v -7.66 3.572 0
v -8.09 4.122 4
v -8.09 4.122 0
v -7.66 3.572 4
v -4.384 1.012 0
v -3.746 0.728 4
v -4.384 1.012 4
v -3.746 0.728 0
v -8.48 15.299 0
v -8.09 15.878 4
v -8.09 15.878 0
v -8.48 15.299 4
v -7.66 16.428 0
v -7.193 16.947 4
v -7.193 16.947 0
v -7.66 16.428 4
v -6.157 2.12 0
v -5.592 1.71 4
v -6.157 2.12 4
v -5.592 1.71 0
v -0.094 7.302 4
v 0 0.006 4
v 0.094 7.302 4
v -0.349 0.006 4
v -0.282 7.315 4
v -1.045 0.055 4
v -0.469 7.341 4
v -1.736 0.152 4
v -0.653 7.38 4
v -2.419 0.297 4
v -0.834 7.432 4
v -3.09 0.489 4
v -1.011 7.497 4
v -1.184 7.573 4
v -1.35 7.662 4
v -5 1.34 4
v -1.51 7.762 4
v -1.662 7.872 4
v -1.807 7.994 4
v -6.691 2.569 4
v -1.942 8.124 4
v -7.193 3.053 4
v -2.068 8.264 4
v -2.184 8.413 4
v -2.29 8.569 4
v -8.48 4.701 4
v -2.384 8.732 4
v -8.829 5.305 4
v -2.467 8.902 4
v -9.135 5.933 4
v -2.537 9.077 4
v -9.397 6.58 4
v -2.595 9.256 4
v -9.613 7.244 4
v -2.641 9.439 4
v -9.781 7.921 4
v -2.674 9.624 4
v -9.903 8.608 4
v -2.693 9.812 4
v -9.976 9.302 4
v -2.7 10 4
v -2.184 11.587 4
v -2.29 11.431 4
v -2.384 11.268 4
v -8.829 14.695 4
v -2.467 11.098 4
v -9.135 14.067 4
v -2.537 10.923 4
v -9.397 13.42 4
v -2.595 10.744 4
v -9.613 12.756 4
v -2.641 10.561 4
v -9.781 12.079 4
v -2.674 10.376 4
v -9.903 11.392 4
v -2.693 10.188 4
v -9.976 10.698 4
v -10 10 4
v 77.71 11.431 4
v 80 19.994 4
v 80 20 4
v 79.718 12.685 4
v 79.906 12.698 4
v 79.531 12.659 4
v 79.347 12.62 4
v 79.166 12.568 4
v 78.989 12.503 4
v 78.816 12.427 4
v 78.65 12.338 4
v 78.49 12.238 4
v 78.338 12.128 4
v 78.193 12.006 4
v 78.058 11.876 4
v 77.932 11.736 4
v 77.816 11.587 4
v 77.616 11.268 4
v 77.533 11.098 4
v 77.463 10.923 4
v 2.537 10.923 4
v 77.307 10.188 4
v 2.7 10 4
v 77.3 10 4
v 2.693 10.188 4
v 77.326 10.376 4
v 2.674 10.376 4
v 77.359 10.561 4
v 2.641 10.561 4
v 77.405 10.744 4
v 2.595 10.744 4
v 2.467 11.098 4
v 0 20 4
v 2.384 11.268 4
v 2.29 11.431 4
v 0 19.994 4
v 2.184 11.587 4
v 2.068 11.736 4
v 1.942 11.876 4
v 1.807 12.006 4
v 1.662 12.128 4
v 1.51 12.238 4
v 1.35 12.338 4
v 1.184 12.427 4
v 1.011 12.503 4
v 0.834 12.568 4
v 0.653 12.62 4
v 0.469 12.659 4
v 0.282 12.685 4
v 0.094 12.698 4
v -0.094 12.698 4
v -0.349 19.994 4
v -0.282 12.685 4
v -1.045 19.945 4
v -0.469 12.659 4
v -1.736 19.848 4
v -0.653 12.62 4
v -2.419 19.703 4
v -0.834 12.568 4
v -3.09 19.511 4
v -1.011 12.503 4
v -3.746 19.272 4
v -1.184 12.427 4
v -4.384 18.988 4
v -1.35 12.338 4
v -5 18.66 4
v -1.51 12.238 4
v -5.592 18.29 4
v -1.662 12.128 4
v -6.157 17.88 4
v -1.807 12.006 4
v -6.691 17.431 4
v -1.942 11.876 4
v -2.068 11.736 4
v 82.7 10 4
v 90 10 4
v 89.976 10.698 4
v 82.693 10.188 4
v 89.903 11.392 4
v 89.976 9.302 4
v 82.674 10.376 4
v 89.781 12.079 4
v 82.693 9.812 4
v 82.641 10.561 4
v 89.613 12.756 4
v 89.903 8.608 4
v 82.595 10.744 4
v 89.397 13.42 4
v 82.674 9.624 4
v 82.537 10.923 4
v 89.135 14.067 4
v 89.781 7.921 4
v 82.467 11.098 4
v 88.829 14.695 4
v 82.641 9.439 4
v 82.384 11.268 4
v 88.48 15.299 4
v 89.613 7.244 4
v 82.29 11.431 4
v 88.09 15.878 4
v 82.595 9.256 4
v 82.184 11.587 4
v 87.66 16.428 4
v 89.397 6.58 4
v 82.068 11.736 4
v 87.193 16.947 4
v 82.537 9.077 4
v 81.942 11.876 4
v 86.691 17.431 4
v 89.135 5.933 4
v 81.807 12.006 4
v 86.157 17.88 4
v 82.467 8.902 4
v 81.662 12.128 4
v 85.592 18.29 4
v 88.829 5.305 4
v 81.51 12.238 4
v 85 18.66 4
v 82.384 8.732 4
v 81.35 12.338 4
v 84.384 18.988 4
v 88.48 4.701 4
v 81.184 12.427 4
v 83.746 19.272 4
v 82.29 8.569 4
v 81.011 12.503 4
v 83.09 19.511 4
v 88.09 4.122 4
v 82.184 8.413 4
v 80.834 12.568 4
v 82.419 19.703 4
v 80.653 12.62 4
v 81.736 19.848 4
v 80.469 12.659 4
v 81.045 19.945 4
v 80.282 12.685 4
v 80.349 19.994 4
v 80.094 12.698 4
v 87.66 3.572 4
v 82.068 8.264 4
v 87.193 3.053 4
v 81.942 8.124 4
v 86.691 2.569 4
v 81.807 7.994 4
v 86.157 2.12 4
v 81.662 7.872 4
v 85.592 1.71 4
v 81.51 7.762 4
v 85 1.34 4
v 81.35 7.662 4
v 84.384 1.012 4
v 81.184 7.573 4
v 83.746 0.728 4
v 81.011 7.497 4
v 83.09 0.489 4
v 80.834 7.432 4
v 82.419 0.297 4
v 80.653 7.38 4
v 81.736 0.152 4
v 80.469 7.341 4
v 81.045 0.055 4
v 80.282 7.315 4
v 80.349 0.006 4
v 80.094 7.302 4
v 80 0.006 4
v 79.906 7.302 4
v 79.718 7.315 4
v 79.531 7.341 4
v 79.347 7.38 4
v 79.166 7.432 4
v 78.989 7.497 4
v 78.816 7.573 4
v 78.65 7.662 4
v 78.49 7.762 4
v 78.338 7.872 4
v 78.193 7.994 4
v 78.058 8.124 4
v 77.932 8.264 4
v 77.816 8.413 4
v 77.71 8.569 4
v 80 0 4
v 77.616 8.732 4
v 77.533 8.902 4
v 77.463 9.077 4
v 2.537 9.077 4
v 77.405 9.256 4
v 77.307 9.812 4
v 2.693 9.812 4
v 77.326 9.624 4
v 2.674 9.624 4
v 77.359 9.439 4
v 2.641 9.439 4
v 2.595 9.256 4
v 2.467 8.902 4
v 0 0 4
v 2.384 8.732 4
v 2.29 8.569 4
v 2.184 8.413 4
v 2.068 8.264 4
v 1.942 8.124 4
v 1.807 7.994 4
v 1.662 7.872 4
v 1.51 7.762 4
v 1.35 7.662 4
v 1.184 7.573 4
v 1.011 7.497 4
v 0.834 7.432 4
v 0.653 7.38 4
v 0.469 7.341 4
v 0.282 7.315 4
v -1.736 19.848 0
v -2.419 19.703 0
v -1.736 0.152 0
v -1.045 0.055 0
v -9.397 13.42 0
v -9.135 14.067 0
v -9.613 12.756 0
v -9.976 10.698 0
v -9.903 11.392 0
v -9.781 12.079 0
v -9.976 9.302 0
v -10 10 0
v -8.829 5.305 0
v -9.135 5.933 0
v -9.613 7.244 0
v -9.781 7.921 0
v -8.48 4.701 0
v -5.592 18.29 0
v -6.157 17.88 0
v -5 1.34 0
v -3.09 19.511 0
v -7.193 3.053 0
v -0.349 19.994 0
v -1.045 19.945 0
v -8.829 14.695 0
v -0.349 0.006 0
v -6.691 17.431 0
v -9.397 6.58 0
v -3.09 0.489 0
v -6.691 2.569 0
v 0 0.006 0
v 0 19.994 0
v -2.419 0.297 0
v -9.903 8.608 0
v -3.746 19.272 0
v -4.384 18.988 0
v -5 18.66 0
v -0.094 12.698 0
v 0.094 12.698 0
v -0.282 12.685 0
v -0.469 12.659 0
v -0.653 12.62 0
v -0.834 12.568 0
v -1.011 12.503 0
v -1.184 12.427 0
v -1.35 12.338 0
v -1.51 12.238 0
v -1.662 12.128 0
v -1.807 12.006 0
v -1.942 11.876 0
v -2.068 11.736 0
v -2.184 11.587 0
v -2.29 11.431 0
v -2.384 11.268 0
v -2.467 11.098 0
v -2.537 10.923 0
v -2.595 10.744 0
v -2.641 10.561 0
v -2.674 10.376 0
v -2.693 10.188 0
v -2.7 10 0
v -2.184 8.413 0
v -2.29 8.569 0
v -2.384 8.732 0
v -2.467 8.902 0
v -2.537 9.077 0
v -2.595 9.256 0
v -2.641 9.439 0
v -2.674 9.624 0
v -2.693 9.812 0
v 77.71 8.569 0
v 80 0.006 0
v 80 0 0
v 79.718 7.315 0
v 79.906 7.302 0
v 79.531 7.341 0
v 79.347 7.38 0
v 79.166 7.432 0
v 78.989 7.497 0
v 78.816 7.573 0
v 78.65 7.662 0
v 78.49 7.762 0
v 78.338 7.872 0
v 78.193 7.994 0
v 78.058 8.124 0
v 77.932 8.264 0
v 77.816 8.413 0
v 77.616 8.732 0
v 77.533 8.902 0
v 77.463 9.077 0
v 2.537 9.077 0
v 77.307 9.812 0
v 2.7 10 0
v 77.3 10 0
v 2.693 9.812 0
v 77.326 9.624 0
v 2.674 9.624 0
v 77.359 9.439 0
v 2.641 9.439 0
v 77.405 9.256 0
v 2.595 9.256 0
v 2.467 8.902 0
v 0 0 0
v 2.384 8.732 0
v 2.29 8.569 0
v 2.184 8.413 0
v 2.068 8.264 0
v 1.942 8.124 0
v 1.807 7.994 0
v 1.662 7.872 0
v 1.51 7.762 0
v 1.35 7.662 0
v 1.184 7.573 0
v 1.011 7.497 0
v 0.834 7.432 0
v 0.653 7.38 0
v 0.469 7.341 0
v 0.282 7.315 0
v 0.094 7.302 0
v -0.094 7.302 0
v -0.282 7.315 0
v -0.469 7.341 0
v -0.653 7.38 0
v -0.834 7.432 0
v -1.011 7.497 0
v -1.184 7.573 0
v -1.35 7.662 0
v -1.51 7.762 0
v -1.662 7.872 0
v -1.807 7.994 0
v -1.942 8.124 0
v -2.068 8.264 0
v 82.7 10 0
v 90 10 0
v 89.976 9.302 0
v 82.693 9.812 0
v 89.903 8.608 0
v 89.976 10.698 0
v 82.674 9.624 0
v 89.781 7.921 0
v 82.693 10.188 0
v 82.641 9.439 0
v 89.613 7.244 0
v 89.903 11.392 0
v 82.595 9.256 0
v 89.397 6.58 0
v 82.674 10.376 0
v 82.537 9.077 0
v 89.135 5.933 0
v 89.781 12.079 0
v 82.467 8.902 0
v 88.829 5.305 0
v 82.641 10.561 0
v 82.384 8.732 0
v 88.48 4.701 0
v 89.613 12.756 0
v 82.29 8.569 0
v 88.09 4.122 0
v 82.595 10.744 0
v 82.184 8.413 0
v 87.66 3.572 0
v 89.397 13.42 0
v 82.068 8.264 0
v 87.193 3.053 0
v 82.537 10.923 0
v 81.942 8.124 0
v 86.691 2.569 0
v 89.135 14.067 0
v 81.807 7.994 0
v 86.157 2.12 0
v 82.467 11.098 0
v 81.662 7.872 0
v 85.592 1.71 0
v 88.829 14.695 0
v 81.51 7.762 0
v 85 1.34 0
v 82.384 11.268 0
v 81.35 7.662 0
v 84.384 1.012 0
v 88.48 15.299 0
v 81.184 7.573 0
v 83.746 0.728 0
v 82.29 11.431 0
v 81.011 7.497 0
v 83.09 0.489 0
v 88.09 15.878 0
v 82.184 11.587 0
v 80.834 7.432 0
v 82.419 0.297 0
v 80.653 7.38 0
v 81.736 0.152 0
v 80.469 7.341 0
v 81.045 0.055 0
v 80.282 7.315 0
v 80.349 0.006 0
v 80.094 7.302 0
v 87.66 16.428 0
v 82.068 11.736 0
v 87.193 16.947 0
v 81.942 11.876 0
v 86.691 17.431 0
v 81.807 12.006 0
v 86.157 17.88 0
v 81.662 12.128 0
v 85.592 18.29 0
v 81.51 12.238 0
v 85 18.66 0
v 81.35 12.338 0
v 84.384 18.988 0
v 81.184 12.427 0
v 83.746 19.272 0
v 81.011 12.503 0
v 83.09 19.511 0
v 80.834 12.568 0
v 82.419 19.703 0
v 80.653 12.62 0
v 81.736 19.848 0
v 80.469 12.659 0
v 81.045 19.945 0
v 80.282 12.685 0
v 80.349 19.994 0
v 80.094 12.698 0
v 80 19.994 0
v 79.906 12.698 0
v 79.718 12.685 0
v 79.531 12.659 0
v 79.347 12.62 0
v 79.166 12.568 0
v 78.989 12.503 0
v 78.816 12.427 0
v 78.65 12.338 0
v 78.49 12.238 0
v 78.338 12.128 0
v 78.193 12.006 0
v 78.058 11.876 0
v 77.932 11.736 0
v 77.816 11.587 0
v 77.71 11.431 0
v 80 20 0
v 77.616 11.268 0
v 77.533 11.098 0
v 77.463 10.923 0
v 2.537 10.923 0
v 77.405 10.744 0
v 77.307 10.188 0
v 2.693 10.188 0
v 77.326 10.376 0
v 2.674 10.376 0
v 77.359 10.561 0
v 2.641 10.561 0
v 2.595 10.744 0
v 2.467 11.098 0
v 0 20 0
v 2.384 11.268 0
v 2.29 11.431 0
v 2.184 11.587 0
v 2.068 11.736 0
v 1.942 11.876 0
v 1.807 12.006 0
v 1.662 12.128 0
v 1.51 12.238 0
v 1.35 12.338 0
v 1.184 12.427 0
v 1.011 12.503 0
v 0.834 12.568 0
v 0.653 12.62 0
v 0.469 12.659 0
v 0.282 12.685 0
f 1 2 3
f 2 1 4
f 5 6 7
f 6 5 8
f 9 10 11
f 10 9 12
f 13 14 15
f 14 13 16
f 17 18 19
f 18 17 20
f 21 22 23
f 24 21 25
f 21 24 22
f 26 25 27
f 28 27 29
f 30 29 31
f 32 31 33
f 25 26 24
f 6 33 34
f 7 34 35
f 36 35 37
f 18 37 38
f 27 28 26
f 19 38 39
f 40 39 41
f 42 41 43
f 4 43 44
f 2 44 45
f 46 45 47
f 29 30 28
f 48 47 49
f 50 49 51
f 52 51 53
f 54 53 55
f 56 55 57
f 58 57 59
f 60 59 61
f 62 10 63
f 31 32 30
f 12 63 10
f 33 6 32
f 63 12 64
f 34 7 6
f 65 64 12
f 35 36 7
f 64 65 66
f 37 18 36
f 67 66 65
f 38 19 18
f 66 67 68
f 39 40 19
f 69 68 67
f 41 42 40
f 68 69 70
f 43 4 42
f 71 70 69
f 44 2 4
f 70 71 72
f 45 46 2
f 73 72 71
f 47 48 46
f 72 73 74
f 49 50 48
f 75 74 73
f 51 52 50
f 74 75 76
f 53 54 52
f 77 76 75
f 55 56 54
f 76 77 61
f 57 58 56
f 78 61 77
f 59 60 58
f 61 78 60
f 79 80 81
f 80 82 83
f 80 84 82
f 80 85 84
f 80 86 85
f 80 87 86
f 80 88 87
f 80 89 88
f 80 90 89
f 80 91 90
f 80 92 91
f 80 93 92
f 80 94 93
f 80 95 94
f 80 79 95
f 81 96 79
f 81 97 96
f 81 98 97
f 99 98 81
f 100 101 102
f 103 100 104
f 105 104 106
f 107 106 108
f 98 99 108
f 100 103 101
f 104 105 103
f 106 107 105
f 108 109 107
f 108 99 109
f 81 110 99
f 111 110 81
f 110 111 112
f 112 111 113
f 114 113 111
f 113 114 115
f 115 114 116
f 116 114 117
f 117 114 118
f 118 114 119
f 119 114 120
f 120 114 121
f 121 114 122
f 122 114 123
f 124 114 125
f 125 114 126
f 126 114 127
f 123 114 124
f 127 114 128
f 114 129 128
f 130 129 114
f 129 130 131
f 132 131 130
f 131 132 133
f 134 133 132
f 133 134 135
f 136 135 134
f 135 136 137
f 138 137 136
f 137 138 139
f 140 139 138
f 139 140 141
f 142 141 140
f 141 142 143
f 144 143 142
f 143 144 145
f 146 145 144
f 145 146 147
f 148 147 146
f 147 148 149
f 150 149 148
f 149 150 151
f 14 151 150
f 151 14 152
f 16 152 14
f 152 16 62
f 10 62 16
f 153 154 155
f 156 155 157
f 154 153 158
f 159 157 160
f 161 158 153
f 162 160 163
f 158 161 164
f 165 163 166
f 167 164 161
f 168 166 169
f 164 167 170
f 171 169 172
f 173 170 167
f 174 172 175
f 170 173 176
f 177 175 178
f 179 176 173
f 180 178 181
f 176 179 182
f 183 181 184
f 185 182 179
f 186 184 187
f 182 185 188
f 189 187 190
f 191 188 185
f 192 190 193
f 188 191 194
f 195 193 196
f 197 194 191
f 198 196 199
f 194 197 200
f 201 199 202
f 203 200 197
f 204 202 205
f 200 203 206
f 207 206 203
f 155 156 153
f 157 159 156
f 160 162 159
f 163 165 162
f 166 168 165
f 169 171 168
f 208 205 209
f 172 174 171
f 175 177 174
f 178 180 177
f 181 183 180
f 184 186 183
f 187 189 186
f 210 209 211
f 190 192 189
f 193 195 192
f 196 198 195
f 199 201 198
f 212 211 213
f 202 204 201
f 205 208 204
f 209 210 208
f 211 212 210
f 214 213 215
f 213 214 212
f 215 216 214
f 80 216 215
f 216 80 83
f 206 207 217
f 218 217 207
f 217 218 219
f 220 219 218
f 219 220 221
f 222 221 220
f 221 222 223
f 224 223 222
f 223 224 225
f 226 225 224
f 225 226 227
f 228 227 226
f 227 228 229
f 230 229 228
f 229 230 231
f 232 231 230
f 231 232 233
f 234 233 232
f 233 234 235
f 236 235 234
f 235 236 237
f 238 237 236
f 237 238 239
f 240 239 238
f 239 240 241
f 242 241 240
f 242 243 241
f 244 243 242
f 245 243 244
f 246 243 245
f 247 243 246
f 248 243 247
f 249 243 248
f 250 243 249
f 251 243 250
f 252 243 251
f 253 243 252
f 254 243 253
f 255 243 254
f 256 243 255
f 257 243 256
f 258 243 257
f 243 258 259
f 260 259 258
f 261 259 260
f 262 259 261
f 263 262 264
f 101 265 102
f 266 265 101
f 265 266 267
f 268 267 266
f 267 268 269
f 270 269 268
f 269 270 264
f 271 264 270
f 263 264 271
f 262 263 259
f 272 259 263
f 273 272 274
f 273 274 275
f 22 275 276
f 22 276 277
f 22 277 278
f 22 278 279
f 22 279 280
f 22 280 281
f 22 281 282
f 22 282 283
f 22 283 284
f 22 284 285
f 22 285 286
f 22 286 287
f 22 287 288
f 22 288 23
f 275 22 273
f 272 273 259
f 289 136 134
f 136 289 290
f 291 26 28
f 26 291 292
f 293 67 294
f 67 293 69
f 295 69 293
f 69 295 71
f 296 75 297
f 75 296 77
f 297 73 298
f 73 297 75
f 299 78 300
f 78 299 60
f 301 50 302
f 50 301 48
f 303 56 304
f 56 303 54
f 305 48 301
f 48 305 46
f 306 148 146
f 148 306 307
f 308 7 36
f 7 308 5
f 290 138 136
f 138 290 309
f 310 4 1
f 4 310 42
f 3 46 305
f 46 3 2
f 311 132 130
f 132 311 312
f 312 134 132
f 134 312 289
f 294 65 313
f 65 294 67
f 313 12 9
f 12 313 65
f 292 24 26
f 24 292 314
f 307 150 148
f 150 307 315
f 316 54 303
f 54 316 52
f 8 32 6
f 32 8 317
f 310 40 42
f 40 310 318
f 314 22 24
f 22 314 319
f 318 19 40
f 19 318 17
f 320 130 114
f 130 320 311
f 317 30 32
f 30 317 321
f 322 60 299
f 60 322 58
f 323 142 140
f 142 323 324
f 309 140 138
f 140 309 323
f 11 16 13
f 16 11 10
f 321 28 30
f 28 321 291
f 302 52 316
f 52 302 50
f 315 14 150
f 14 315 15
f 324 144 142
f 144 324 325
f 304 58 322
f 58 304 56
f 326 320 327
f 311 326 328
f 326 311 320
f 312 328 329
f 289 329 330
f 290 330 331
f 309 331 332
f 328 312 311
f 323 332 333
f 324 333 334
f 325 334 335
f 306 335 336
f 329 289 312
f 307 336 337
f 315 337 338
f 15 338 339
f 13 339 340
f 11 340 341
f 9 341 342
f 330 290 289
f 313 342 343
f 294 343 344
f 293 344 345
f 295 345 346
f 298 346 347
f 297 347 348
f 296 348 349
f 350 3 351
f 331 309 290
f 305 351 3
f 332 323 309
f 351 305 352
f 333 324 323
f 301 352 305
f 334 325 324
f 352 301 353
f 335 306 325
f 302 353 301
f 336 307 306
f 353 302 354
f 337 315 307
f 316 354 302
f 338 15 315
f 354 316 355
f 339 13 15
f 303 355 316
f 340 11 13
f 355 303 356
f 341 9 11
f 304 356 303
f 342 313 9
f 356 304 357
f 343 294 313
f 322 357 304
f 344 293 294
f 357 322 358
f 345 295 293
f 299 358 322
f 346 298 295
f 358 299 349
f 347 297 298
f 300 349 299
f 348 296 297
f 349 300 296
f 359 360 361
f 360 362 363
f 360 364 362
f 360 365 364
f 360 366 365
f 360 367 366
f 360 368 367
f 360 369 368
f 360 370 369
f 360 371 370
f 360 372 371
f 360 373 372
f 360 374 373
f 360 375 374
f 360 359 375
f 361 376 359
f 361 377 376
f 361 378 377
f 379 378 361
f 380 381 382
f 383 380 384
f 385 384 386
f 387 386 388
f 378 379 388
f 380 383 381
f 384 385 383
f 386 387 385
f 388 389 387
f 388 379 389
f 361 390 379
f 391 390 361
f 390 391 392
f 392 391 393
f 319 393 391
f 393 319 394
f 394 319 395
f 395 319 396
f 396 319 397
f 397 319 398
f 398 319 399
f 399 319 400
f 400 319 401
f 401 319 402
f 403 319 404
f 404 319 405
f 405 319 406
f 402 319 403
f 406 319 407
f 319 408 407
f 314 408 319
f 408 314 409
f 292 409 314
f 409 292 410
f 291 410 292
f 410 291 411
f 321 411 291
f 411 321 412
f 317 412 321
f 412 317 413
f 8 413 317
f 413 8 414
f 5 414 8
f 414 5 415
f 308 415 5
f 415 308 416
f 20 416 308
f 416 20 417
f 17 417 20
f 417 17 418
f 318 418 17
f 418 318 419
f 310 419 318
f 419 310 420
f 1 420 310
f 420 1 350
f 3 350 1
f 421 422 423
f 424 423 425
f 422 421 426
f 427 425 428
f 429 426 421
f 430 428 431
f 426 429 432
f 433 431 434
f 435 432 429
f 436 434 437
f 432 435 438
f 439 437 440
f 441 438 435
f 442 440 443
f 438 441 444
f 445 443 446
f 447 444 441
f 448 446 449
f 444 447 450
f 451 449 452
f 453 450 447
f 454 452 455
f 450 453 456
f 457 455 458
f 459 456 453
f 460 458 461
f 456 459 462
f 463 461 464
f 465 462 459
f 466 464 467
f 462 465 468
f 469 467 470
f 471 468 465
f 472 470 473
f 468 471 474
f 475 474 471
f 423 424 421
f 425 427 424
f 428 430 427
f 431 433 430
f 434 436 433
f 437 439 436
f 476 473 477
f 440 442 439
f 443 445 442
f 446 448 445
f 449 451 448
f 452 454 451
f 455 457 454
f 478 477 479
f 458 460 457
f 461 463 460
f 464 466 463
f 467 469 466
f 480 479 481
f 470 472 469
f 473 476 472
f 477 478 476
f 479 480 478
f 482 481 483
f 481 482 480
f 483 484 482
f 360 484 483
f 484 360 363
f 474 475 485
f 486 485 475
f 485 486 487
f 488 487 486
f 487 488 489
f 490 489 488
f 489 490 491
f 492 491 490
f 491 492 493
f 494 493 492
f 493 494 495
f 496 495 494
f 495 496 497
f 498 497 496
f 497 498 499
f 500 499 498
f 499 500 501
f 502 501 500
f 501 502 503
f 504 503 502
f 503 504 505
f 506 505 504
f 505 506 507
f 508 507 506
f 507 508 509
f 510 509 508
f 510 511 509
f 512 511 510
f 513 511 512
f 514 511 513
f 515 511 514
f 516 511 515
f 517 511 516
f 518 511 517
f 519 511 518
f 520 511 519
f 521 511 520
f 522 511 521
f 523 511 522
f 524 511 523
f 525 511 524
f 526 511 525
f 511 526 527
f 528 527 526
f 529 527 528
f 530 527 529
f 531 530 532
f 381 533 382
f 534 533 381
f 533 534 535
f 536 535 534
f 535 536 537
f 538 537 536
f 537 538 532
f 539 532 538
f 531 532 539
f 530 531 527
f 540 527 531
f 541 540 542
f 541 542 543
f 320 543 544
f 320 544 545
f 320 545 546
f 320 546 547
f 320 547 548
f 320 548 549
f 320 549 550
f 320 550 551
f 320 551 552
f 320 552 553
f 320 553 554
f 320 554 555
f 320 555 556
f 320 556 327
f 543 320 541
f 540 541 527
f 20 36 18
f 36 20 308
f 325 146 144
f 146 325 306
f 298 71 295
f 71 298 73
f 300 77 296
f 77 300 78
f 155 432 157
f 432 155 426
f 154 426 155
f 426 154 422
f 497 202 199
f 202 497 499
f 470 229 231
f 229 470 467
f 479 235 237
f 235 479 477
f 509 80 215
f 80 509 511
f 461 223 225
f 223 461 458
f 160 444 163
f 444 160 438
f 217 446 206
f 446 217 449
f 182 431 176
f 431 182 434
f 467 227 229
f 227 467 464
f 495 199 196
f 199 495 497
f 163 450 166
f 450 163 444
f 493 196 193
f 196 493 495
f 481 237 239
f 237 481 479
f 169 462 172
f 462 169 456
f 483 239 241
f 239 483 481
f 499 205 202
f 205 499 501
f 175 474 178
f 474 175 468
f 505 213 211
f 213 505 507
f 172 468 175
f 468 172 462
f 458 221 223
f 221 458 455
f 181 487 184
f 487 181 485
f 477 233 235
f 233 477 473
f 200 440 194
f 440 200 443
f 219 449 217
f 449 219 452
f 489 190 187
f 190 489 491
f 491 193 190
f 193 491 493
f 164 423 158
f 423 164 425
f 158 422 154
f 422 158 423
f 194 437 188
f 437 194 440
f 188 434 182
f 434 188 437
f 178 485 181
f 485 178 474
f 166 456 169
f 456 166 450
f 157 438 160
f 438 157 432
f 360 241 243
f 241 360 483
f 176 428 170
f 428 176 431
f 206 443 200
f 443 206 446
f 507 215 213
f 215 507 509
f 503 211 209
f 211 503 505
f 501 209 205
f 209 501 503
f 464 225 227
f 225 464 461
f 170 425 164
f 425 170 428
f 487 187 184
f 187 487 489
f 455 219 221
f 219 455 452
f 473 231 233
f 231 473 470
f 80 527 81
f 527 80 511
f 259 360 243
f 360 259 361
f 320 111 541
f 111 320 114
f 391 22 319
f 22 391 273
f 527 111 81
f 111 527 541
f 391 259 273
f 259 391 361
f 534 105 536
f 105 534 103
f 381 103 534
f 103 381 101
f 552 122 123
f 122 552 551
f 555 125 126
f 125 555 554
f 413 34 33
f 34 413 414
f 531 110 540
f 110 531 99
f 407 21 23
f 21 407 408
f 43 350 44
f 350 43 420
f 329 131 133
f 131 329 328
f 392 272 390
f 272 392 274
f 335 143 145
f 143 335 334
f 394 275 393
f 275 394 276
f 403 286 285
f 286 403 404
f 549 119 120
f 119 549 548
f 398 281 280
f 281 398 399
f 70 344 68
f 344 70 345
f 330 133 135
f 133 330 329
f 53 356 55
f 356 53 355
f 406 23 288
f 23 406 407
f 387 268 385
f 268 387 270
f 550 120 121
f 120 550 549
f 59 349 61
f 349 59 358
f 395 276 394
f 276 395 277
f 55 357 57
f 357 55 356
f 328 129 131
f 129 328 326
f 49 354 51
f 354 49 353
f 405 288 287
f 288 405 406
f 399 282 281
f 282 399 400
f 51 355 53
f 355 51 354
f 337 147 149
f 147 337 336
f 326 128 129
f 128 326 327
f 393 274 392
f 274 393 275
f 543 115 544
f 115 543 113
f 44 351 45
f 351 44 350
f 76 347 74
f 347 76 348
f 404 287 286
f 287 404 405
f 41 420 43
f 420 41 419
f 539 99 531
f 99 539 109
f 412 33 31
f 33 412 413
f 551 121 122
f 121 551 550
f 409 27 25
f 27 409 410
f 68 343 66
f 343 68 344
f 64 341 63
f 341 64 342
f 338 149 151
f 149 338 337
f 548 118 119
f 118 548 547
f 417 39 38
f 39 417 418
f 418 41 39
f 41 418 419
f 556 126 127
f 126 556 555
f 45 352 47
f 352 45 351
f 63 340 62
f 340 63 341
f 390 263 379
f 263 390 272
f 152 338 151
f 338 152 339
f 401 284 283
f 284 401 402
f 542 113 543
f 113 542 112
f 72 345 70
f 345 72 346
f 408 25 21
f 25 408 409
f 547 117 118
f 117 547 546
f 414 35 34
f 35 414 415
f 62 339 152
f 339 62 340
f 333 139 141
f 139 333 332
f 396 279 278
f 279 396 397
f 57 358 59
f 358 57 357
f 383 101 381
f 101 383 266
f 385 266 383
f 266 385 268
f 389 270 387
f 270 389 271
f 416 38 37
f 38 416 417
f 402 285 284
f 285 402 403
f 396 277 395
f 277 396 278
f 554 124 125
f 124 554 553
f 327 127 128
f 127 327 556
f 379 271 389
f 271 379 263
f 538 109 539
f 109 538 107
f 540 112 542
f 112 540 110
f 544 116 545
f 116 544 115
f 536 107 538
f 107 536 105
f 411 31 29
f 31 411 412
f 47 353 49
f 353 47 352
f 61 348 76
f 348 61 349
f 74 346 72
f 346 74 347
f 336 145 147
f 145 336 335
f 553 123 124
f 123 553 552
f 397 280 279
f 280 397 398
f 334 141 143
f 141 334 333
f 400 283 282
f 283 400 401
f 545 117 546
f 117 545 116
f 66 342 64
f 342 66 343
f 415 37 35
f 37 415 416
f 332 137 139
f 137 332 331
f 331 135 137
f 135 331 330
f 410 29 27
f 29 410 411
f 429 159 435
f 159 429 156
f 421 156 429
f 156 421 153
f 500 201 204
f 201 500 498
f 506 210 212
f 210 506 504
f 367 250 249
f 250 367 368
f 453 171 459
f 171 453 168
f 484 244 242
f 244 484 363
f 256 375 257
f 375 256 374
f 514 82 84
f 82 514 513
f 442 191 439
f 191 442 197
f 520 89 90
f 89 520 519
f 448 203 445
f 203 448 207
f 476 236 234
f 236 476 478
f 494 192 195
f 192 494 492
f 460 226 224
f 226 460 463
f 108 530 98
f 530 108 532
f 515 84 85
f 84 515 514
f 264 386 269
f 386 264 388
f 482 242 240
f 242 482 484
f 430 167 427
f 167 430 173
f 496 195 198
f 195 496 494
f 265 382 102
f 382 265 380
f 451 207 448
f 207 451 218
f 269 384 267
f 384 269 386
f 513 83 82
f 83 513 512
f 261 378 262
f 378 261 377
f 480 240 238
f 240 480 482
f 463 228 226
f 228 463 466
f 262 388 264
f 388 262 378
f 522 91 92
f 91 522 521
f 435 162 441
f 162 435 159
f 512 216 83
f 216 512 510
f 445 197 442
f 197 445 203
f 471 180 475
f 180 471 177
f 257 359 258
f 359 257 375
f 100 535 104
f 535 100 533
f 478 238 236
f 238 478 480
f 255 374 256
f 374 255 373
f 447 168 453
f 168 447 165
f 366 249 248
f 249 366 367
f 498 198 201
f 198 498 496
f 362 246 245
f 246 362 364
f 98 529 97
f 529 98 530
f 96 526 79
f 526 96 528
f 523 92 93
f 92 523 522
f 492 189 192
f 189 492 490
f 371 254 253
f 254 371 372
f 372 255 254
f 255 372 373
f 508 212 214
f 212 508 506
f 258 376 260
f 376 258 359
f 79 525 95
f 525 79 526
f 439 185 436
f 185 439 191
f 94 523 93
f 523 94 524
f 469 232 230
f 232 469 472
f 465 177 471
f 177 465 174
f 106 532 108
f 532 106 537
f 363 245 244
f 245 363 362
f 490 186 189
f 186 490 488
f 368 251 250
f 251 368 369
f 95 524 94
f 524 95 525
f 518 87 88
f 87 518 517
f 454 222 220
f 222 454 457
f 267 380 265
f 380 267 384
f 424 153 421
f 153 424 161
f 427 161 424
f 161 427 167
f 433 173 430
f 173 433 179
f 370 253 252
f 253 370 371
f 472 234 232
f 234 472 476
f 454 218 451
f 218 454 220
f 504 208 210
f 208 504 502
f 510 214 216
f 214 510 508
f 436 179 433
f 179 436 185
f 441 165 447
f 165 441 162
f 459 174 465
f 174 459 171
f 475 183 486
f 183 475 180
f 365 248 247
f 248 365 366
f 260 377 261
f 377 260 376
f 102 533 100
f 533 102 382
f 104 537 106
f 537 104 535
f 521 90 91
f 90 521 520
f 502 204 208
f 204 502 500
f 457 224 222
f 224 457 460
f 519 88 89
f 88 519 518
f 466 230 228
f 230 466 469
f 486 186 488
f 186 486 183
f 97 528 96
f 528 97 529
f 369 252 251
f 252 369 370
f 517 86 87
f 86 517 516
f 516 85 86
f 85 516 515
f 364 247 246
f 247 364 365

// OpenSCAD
$fn=90;
length = 80; //Hole c-c distance, not overall length

width = 20;

hole_d = 5.4; //Clearance for M5 screws

thickness = 4;

difference() {
    union() {
        cube([length, width, thickness]);
        
        for(i=[0,1])
            translate([i*length, width/2, 0]) cylinder(d=width, h=thickness);
    }
    
    
    union() {
        for(i=[0,1])
            translate([i*length, width/2, -1]) cylinder(d=hole_d, h=thickness+2);
    }
}
    
